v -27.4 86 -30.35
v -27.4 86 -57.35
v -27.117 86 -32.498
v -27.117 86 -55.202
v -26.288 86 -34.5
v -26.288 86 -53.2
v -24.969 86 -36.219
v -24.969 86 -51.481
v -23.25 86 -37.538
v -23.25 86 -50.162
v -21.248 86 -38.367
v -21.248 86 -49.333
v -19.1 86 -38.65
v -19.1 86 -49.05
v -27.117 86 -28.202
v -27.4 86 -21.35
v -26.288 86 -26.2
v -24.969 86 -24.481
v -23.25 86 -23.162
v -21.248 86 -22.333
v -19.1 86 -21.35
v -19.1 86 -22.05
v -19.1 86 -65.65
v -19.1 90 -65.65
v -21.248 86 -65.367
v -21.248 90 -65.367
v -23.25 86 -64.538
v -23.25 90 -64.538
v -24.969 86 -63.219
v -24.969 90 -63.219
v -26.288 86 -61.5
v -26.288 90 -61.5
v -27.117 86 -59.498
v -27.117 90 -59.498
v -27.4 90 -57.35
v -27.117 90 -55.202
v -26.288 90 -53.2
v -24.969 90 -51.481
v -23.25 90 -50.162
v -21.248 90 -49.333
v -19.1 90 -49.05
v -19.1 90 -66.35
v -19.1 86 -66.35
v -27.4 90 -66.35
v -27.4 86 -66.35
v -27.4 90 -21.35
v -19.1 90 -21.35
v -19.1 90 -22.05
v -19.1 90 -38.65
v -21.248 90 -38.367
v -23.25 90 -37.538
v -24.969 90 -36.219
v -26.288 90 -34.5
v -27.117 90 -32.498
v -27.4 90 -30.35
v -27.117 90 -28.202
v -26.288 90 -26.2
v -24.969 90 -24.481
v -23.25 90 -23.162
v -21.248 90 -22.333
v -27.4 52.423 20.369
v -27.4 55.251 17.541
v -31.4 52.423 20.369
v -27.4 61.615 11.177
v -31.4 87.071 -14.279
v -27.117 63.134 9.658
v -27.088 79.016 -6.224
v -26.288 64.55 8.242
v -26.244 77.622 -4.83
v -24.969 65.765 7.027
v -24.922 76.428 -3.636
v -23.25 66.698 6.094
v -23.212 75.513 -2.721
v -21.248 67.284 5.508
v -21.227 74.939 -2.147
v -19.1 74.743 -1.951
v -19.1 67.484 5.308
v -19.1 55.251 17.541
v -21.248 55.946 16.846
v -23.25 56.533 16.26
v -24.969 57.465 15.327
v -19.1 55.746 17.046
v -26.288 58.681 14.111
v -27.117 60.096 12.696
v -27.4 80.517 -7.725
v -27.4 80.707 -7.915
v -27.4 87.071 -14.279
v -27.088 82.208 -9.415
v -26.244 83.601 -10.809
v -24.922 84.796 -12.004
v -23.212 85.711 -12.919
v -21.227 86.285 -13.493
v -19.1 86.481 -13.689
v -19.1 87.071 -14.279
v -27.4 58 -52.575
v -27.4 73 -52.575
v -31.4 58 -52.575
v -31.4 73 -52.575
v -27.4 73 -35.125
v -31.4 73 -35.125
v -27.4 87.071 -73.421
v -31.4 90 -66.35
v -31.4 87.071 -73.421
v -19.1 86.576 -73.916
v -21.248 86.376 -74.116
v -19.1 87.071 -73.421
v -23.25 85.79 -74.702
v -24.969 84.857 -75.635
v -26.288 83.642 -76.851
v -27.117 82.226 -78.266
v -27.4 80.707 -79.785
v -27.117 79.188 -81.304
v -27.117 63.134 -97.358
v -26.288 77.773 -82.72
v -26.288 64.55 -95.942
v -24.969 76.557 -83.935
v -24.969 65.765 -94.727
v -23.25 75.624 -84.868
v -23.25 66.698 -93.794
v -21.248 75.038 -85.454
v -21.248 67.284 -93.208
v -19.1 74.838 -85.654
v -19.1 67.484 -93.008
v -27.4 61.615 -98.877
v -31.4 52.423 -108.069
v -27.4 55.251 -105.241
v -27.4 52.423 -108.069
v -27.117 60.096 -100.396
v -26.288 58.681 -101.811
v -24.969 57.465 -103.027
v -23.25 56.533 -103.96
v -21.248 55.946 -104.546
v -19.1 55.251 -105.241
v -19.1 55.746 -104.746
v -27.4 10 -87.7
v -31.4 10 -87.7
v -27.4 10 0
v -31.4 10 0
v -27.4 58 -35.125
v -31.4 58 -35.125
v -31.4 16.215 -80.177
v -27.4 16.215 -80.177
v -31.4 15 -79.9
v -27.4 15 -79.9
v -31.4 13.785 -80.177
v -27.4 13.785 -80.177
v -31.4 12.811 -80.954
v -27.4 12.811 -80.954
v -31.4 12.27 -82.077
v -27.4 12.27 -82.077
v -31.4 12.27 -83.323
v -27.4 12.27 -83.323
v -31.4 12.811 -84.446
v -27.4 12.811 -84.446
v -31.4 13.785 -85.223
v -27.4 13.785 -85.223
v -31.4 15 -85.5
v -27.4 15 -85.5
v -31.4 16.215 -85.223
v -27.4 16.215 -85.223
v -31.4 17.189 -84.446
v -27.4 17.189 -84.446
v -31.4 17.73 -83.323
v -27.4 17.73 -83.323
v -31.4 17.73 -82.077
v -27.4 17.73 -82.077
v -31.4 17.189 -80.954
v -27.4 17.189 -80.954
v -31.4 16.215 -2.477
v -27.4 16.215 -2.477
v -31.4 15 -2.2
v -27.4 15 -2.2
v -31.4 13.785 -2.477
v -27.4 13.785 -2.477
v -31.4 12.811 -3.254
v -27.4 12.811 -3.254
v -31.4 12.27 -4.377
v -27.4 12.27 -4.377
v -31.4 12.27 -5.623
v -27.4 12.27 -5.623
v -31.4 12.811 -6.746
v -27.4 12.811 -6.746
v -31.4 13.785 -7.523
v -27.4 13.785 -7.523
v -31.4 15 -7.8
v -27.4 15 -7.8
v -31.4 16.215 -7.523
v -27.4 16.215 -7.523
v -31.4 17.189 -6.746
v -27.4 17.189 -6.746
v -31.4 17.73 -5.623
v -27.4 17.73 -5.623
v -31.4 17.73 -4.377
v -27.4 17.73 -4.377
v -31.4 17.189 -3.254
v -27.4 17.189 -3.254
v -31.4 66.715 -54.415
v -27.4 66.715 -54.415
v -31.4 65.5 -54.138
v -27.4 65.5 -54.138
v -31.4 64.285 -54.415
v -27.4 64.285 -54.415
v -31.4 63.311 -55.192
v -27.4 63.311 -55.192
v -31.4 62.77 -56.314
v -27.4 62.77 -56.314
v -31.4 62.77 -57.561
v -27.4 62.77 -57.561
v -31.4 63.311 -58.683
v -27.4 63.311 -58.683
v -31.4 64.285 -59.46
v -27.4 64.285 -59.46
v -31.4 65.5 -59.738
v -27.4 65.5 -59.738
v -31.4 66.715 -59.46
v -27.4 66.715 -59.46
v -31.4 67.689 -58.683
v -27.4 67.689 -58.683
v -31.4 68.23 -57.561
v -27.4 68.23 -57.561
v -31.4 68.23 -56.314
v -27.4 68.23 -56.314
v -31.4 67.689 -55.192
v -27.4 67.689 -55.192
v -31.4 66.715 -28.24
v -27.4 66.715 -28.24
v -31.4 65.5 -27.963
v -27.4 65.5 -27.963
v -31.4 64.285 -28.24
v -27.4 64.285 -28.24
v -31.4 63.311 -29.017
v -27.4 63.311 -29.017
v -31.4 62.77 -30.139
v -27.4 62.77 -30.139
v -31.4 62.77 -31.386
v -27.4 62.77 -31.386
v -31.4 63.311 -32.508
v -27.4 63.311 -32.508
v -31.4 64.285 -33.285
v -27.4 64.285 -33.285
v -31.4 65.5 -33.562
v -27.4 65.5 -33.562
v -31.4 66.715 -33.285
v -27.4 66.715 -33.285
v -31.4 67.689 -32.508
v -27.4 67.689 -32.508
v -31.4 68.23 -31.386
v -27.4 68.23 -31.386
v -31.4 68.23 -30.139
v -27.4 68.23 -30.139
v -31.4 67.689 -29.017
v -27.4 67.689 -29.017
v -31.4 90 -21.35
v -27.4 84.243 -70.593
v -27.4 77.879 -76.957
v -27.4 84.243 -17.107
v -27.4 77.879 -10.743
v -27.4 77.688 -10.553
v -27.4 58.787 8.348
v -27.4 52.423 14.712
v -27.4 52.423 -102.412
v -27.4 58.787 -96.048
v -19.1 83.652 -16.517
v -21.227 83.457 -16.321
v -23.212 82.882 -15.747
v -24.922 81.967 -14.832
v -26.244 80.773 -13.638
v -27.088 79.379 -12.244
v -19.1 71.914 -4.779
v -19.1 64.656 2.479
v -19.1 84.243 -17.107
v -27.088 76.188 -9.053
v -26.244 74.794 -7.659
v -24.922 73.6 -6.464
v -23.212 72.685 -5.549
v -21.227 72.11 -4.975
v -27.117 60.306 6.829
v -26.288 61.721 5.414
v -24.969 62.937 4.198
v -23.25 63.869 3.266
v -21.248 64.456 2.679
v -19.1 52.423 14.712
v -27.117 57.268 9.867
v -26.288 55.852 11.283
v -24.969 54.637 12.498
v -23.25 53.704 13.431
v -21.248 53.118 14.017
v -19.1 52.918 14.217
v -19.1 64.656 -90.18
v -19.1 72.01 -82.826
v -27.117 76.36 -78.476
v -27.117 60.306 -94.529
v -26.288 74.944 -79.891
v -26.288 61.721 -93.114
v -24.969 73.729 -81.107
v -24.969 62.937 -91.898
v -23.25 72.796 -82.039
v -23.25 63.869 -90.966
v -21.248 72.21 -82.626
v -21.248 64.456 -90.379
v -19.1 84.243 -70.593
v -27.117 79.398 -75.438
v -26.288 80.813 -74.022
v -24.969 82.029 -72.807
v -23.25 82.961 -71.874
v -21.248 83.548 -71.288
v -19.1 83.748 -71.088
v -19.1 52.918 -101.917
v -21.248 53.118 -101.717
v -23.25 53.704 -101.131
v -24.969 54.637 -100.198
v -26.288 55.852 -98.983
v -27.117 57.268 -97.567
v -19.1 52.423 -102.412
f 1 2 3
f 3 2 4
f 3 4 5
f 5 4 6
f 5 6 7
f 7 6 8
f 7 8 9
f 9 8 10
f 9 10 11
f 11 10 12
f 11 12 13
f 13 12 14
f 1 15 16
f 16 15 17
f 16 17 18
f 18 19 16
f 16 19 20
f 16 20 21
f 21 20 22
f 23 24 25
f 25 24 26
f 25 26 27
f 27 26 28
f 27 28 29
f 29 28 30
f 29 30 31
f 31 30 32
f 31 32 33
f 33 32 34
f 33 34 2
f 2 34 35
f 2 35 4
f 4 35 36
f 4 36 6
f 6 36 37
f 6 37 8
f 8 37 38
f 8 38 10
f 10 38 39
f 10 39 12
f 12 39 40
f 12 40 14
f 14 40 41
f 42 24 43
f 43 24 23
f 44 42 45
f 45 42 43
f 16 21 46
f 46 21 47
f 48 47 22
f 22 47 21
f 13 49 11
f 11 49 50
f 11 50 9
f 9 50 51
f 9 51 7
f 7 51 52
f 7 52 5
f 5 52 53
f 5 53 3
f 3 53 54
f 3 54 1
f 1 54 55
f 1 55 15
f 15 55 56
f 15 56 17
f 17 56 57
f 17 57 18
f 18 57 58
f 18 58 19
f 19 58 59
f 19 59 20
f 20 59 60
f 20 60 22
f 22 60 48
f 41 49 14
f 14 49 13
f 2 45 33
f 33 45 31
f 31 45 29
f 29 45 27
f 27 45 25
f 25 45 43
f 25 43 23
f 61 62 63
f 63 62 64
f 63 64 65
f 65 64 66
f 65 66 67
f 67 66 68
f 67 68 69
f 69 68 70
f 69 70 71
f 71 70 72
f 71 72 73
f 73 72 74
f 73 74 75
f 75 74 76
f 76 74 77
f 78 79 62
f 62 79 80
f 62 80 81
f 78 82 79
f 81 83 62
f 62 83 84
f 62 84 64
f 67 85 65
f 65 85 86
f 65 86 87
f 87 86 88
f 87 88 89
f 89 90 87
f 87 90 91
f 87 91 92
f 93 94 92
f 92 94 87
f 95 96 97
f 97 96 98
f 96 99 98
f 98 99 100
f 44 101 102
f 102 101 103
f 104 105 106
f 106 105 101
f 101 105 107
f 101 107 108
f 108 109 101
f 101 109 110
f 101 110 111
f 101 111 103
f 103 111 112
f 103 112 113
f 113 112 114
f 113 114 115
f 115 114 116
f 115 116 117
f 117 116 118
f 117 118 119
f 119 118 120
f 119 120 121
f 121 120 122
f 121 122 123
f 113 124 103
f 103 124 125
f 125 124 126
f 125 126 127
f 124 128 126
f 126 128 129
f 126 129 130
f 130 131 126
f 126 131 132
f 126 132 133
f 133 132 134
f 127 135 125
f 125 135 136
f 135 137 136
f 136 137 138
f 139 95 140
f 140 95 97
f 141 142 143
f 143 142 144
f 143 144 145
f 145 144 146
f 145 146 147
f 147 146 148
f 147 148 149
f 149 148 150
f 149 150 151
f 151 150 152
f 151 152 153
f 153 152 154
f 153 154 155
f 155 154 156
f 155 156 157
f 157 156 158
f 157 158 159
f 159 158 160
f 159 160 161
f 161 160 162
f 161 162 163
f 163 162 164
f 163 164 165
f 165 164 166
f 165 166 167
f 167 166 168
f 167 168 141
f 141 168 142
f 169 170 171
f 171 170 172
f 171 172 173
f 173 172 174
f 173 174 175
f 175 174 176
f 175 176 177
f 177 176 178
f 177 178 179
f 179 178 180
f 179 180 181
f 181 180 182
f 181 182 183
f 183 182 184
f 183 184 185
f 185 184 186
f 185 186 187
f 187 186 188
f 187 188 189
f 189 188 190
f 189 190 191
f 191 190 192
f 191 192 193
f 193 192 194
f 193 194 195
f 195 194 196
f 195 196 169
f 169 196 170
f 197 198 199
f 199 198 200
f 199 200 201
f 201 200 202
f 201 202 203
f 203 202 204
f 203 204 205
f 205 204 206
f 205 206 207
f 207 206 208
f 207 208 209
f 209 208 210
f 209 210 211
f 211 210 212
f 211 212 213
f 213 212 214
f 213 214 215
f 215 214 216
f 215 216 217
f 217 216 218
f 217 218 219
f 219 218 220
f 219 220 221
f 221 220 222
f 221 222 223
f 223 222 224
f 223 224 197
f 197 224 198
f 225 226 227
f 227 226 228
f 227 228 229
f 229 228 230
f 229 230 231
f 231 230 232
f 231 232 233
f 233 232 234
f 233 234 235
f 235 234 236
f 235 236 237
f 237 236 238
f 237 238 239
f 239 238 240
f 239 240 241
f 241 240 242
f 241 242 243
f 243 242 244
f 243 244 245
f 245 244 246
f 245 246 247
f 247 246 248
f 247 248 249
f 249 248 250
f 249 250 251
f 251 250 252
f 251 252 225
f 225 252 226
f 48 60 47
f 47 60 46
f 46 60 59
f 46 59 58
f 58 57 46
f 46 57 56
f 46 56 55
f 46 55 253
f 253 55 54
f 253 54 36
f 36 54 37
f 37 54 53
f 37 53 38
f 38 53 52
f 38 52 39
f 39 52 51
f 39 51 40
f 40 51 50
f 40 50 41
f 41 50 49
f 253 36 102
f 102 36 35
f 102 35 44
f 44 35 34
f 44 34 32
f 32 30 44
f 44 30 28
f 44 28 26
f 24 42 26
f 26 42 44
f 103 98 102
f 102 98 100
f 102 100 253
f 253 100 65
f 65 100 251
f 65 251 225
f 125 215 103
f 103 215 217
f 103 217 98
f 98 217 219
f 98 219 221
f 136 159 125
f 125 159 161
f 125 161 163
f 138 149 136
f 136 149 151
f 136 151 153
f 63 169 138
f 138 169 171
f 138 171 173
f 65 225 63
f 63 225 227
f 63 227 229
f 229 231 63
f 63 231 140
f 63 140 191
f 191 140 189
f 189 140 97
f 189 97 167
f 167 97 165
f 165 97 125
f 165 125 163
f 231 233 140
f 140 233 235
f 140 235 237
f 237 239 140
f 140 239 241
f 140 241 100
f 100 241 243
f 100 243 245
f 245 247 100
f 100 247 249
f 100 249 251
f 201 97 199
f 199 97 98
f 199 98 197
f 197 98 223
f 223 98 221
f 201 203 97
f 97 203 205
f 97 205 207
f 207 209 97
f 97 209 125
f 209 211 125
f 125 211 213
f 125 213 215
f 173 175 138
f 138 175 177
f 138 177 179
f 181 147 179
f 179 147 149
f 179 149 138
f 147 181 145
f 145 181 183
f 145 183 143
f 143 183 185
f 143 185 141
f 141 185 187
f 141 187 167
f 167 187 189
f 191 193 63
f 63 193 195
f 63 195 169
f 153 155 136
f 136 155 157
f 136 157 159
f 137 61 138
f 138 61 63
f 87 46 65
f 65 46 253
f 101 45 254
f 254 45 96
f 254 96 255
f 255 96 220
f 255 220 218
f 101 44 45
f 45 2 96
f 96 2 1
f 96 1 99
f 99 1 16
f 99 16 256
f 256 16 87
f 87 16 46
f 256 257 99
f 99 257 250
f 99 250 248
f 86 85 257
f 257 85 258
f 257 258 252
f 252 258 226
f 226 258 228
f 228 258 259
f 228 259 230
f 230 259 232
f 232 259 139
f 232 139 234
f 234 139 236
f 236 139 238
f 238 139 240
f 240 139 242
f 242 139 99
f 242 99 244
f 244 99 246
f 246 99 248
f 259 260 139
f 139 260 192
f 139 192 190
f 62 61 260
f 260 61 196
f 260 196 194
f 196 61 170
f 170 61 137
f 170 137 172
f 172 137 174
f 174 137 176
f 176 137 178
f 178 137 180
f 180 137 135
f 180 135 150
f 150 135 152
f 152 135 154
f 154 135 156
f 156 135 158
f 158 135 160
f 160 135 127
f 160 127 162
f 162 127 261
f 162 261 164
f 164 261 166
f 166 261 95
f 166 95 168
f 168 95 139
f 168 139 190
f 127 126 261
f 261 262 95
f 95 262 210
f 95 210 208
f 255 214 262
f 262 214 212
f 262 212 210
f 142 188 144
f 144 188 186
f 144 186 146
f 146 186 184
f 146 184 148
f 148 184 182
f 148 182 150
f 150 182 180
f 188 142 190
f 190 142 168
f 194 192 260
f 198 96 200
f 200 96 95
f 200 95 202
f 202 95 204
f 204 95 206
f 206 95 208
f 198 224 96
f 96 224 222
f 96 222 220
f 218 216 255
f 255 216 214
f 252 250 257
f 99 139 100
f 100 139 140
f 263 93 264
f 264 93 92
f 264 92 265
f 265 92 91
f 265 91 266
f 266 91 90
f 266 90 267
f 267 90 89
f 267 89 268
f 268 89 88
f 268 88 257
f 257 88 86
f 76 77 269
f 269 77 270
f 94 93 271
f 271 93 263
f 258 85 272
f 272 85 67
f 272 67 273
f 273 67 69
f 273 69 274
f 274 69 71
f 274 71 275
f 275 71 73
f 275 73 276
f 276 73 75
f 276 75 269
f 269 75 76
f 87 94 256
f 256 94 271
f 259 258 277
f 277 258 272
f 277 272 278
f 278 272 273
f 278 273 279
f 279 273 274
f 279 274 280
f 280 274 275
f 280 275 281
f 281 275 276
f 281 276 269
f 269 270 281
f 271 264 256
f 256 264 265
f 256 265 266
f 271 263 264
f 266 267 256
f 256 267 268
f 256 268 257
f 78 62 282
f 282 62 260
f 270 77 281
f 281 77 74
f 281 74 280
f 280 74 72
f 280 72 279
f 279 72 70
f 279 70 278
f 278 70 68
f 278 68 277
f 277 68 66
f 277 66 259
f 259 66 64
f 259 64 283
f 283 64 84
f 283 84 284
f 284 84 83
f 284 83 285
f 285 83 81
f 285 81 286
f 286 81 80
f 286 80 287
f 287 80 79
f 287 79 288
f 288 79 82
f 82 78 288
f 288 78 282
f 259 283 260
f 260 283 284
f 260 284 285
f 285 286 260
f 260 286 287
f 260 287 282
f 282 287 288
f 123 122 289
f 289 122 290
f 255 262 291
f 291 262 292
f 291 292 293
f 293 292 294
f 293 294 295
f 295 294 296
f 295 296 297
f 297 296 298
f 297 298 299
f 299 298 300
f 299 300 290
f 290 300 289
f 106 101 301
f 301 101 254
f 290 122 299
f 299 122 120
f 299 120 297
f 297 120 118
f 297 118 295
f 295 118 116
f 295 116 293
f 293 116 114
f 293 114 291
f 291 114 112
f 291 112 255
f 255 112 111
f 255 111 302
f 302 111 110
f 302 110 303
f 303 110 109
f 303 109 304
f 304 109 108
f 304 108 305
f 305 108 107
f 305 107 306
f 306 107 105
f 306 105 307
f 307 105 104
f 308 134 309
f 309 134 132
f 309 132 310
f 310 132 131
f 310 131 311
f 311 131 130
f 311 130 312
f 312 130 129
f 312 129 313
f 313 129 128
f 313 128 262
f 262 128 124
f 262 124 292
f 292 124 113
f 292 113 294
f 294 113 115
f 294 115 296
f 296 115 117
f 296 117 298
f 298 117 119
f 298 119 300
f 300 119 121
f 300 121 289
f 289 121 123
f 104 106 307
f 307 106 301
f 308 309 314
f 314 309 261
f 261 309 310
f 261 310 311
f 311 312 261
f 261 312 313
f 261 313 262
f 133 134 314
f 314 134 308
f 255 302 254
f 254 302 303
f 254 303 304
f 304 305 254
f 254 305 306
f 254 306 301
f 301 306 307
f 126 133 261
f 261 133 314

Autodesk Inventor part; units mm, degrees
ref_plane "YZ Plane" through (0, 0, 0) normal (1, 0, 0) x (0, 1, 0)
ref_plane "XZ Plane" through (0, 0, 0) normal (0, 1, 0) x (-1, 0, 0)
ref_plane "XY Plane" through (0, 0, 0) normal (0, 0, 1) x (1, 0, 0)
sketch "Sketch1" plane through (0, 0, 0) normal (0, 1, 0) x (-1, 0, 0)
  line L0 (0, 0) -> (27.4, 0)
  line L1 (27.4, 0) -> (27.4, -87.7)
  line L2 (27.4, -87.7) -> (0, -87.7)
  line L3 (0, -87.7) -> (0, 0)
  line L4 (13.7, 0) -> (13.7, -13.2)
  line L5 (13.7, -87.7) -> (13.7, -74.5)
  circle A0 centre (13.7, -13.2) radius 2
  circle A1 centre (13.7, -74.5) radius 2
  dimension "d0" = 27.4
  dimension "d1" = 87.7
  dimension "d2" = 13.2
  dimension "d4" = 4
  dimension "d6" = 4
extrude "Extrusion1" add sketch "Sketch1" along normal blind 10
sketch "Sketch2" plane through (0, 0, 0) normal (0, -1, 0) x (1, 0, 0)
  circle A0 centre (-13.7, -13.2) radius 2 projected
  circle A1 centre (-13.7, -13.2) radius 4.5
  circle A2 centre (-13.7, -74.5) radius 2 projected
  circle A3 centre (-13.7, -74.5) radius 4.5
  point P0 (0, 0)
  dimension "d9" = 9
  dimension "d10" = 9
extrude "Extrusion2" cut sketch "Sketch2" against normal blind 3
sketch "Sketch3" plane through (0, 10, 0) normal (0, 1, 0) x (1, 0, 0)
  line L0 (0, 0) -> (0, 87.7) projected
  line L1 (0, 87.7) -> (-27.4, 87.7) projected
  line L2 (0, 0) -> (-27.4, 0)
  line L3 (-27.4, 0) -> (-27.4, 87.7)
  line L4 (-27.4, 87.7) -> (0, 87.7)
  line L5 (0, 87.7) -> (0, 0)
  circle A0 centre (-11.7, 12.5929) radius 0.0901
  circle A1 centre (-13.7, 13.2) radius 2 projected
sketch "Sketch4" plane through (0, 0, 0) normal (0, -1, 0) x (1, 0, 0)
  line L0 (-27.4, -87.7) -> (-27.4, 0) projected
  line L1 (-27.4, -43.85) -> (0, -43.85)
  line L2 (0, 0) -> (0, -87.7) projected
  circle A0 centre (-13.7, -13.2) radius 2 projected
  line L3 (-13.7, -13.2) -> (-13.7, -26.4)
  line L4 (-13.7, -26.4) -> (0, -26.4)
  line L5 (0, -26.4) -> (0, -43.85)
  line L6 (0, -43.85) -> (-13.7, -43.85)
  line L7 (-13.7, -43.85) -> (-13.7, -26.4)
  line L8 (-13.7, -26.4) -> (-27.4, -26.4)
  line L9 (-27.4, -26.4) -> (-27.4, -43.85)
  line L10 (-27.4, -43.85) -> (-13.7, -43.85)
  line L11 (-13.7, -43.85) -> (-13.7, -26.4)
  circle A1 centre (-13.7, -74.5) radius 2 projected
  line L12 (-13.7, -74.5) -> (-13.7, -61.3)
  line L13 (-13.7, -43.85) -> (-13.7, -61.3)
  line L14 (-13.7, -61.3) -> (0, -61.3)
  line L15 (0, -61.3) -> (0, -43.85)
  line L16 (0, -43.85) -> (-13.7, -43.85)
  line L17 (-13.7, -43.85) -> (-13.7, -61.3)
  line L18 (-13.7, -43.85) -> (-27.4, -43.85)
  line L19 (-27.4, -43.85) -> (-27.4, -61.3)
  line L20 (-27.4, -61.3) -> (-13.7, -61.3)
  line L21 (-13.7, -61.3) -> (-13.7, -43.85)
  line L22 (0, -26.4) -> (-27.4, -26.4)
  line L23 (-27.4, -26.4) -> (-27.4, -35.125)
  line L24 (-27.4, -35.125) -> (0, -35.125)
  line L25 (0, -35.125) -> (0, -26.4)
  line L26 (-27.4, -61.3) -> (0, -61.3)
  line L27 (0, -61.3) -> (0, -52.575)
  line L28 (0, -52.575) -> (-27.4, -52.575)
  line L29 (-27.4, -52.575) -> (-27.4, -61.3)
  dimension "d13" = 13.2
  dimension "d14" = 13.2
extrude "Extrusion3" add sketch "Sketch4" along normal blind 60 contours L0 L28 L13 L20 | L13 L28 L2 L14 | L0 L8 L7 L24 | L7 L4 L2 L24
sketch "Sketch5" plane through (0, 0, -87.7) normal (1, 0, 0) x (0, 0, -1)
  line L0 (0, 10) -> (-87.7, 10) projected
  line L1 (-87.7, 10) -> (-87.7, 182)
  line L2 (0, 10) -> (-87.7, 10)
  line L3 (-87.7, 10) -> (-87.7, 182)
  line L4 (-87.7, 182) -> (0, 182)
  line L5 (0, 182) -> (0, 10)
  line L6 (-87.7, 182) -> (0, 182)
  line L7 (0, 182) -> (0, 192)
  line L8 (0, 192) -> (-87.7, 192)
  line L9 (-87.7, 192) -> (-87.7, 182)
  line L10 (-61.3, 0) -> (-61.3, -60) projected
  line L11 (-61.3, -60) -> (-61.3, 192)
  line L12 (-26.4, -60) -> (-35.125, -60) projected
  line L13 (-26.4, -60) -> (-26.4, 192)
  line L14 (-52.575, 0) -> (-52.575, -60) projected
  line L15 (-52.575, -60) -> (-61.3, -60)
  line L16 (-61.3, -60) -> (-61.3, 192)
  line L17 (-61.3, 192) -> (-52.575, 192)
  line L18 (-52.575, 192) -> (-52.575, -60)
  line L19 (-26.4, 182) -> (-35.125, 182)
  line L20 (-35.125, 182) -> (-35.125, 192)
  line L21 (-35.125, 192) -> (-26.4, 192)
  line L22 (-26.4, 192) -> (-26.4, 182)
  line L23 (-61.3, 192) -> (-52.575, 192)
  line L24 (-52.575, 192) -> (-52.575, 252)
  line L25 (-52.575, 252) -> (-61.3, 252)
  line L26 (-61.3, 252) -> (-61.3, 192)
  line L27 (-35.125, 192) -> (-26.4, 192)
  line L28 (-26.4, 192) -> (-26.4, 252)
  line L29 (-26.4, 252) -> (-35.125, 252)
  line L30 (-35.125, 252) -> (-35.125, 192)
  line L31 (-26.4, 10) -> (-35.125, 10)
  line L32 (-35.125, 10) -> (-35.125, 192)
  line L33 (-35.125, 192) -> (-26.4, 192)
  line L34 (-26.4, 192) -> (-26.4, 10)
  point P0 (-87.7, 0)
  point P1 (-52.575, 10)
  point P2 (-52.575, 182)
  point P3 (-35.125, 10)
  point P4 (-26.4, 182)
  point P5 (-61.3, 182)
  point P6 (-61.3, 10)
  dimension "d17" = 172
  dimension "d18" = 10
  dimension "d19" = 8.725
  dimension "d20" = 60
  dimension "d21" = 60
extrude "Extrusion4" add sketch "Sketch5" against normal up to surface (27.4 mm away) contours L0 L32 L4 L13 | L4 L13 L8 L7 | L4 L20 L8 L13 | L0 L11 L4 L18 | L4 L18 L8 L20 | L4 L11 L8 L18 | L4 L9 L8 L11
extrude "Extrusion5" add sketch "Sketch5" against normal up to surface (27.4 mm away) contours L8 L30 L29 L28 | L8 L26 L25 L24
sketch "Sketch6" plane through (0, 0, 0) normal (0, -1, 0) x (1, 0, 0)
  circle A0 centre (-13.7, -13.2) radius 4.5 projected
  circle A1 centre (-13.7, -13.2) radius 2
  circle A2 centre (-13.7, -74.5) radius 2 projected
  circle A3 centre (-13.7, -74.5) radius 2
  point P0 (0, 0)
  dimension "d26" = 4
extrude "Extrusion6" add sketch "Sketch6" against normal through all contours A1 | A2
sketch "Sketch7" plane through (-13.7, 0, -74.5) normal (0, -1, 0) x (1, 0, 0)
  circle A0 centre (0, 61.3) radius 2 projected
  circle A1 centre (0, 61.3) radius 2
  circle A2 centre (0, 0) radius 4.5 projected
  circle A3 centre (0, 0) radius 2
  point P0 (13.7, 74.5)
extrude "Extrusion7" cut sketch "Sketch7" against normal through all contours A0 | A3
sketch "Sketch8" plane through (-27.4, 192, 0) normal (0, 1, 0) x (1, 0, 0)
  circle A0 centre (13.7, 13.2) radius 2 projected
  circle A1 centre (13.7, 13.2) radius 4.5
  circle A2 centre (13.7, 74.5) radius 4.5 projected
  circle A3 centre (13.7, 74.5) radius 4.5
  point P0 (27.4, 0)
  dimension "d31" = 9
  dimension "d32" = 9
extrude "Extrusion8" cut sketch "Sketch8" against normal blind 3
sketch "Sketch9" plane through (0, 0, 0) normal (1, 0, 0) x (0, 0, -1)
  line L0 (26.4, 182) -> (26.4, 10) projected
  line L1 (26.4, 10) -> (61.3, 10)
  line L2 (61.3, 10) -> (61.3, 182)
  line L3 (61.3, 182) -> (26.4, 182)
  line L4 (26.4, 182) -> (26.4, 10)
  point P0 (0, 0)
extrude "Extrusion9" cut sketch "Sketch9" against normal through all
sketch "Sketch10" plane through (0, 0, 0) normal (1, 0, 0) x (0, 0, -1)
  line L0 (-41.6694, 140.0326) -> (109.1096, 140.0326)
  line L1 (109.1096, 140.0326) -> (109.1096, 292.3119)
  line L2 (109.1096, 292.3119) -> (-41.6694, 292.3119)
  line L3 (-41.6694, 292.3119) -> (-41.6694, 140.0326)
  point P0 (0, 0)
extrude "Extrusion10" cut sketch "Sketch10" against normal blind 30
sketch "Sketch11" plane through (0, 10, 0) normal (0, 1, 0) x (1, 0, 0)
  line L0 (0, 61.3) -> (0, 87.7) projected
  line L1 (-27.4, 0) -> (0, 0) projected
  line L2 (0, 87.7) -> (-27.4, 87.7)
  line L3 (-27.4, 87.7) -> (-27.4, 0)
  line L4 (-27.4, 0) -> (0, 0)
  line L5 (0, 0) -> (0, 87.7)
extrude "Extrusion11" add sketch "Sketch11" against normal up to surface (10 mm away)
sketch "Sketch12" plane through (0, 10, 0) normal (0, 1, 0) x (1, 0, 0)
  line L0 (0, 61.3) -> (0, 87.7) projected
  line L1 (-27.4, 0) -> (0, 0) projected
  line L2 (0, 87.7) -> (-27.4, 87.7)
  line L3 (-27.4, 87.7) -> (-27.4, 0)
  line L4 (-27.4, 0) -> (0, 0)
  line L5 (0, 0) -> (0, 87.7)
  line L6 (-27.4, 0) -> (-11.2, 0)
  line L7 (0, 87.7) -> (-27.4, 87.7) projected
  line L8 (-27.4, 87.7) -> (-11.2, 87.7)
  line L9 (-11.2, 87.7) -> (-11.2, 74.5)
  line L10 (-11.2, 0) -> (-11.2, 13.2)
  circle A0 centre (-11.2, 74.5) radius 2
  circle A1 centre (-11.2, 13.2) radius 2
  dimension "d41" = 16.2
  dimension "d42" = 16.2
  dimension "d43" = 13.2
  dimension "d44" = 13.2
  dimension "d45" = 4
  dimension "d46" = 4
extrude "Extrusion12" cut sketch "Sketch12" against normal through all contours A0 | A1
sketch "Sketch13" plane through (0, 0, -87.7) normal (1, 0, 0) x (0, 0, -1)
  line L0 (-87.7, 10) -> (0, 10) projected
  line L1 (0, 10) -> (-87.7, 10)
  line L2 (-26.4, 0) -> (-26.4, -60) projected
  line L3 (-35.125, 0) -> (-35.125, -60) projected
  line L4 (-26.4, -60) -> (-35.125, -60)
  line L5 (-35.125, -60) -> (-35.125, 0)
  line L6 (-35.125, 0) -> (-26.4, 0)
  line L7 (-26.4, 0) -> (-26.4, -60)
  line L8 (-52.575, 0) -> (-52.575, -60) projected
  line L9 (-61.3, 0) -> (-61.3, -60) projected
  line L10 (-52.575, -60) -> (-61.3, -60)
  line L11 (-61.3, -60) -> (-61.3, 0)
  line L12 (-61.3, 0) -> (-52.575, 0)
  line L13 (-52.575, 0) -> (-52.575, -60)
  line L14 (0, 0) -> (-87.7, 0)
  line L15 (-87.7, 0) -> (-87.7, 10)
  line L16 (-87.7, 10) -> (0, 10)
  line L17 (0, 10) -> (0, 0)
  line L18 (-26.4, 20) -> (-26.4, 80)
  line L19 (-35.125, 20) -> (-35.125, 80)
  line L20 (-26.4, 80) -> (-35.125, 80)
  line L21 (-61.3, 20) -> (-61.3, 80)
  line L22 (-52.575, 80) -> (-61.3, 80)
  line L23 (-52.575, 20) -> (-52.575, 80)
  line L24 (0, 20) -> (-87.7, 20)
  line L25 (-87.7, 20) -> (-87.7, 10)
  line L26 (0, 10) -> (0, 20)
extrude "Extrusion13" add sketch "Sketch13" against normal up to surface (27.4 mm away) contours L25 L24 L26 L0 | L21 L22 L23 L24 | L24 L19 L20 L18
sketch "Sketch14" plane through (-27.4, 0, -26.4) normal (-1, 0, 0) x (0, 0, 1)
  line L0 (26.4, 0) -> (26.4, 20) projected
  line L1 (26.4, 10) -> (-64.4539, 10)
  line L2 (-64.4539, 10) -> (-64.4539, -69.7314)
  line L3 (-64.4539, -69.7314) -> (26.4, -69.7314)
  line L4 (26.4, -69.7314) -> (26.4, 10)
extrude "Extrusion14" cut sketch "Sketch14" against normal blind 30
sketch "Sketch15" plane through (0, 20, -61.3) normal (0, 1, 0) x (1, 0, 0)
  line L0 (0, 26.4) -> (0, 0) projected
  line L1 (0, 26.4) -> (0, 13.2)
  line L2 (0, 13.2) -> (-16.2, 13.2)
  line L3 (0, -61.3) -> (0, -48.1)
  line L4 (0, -34.9) -> (0, -61.3) projected
  line L5 (0, -48.1) -> (-16.2, -48.1)
  circle A0 centre (-16.2, 13.2) radius 2
  circle A1 centre (-16.2, -48.1) radius 2
  dimension "d53" = 13.2
  dimension "d54" = 16.2
  dimension "d55" = 13.2
  dimension "d56" = 16.2
  dimension "d57" = 4
  dimension "d58" = 4
extrude "Extrusion15" cut sketch "Sketch15" against normal blind 30
sketch "Sketch17" plane through (0, 20, -61.3) normal (1, 0, 0) x (0, 0, -1)
  line L0 (-61.3, -10) -> (-61.3, 0) projected
  line L1 (-61.3, -10) -> (-61.3, 179.5615)
  line L2 (-26.175, 60) -> (-34.9, 60) projected
  line L3 (0, 60) -> (-8.725, 60) projected
  line L4 (-26.175, 60) -> (-8.725, 60)
  line L5 (-17.45, 60) -> (-39.95, 60)
  line L6 (-17.45, 60) -> (5.05, 60)
  line L7 (0, 0) -> (0, 60) projected
  line L8 (-34.9, 60) -> (-34.9, 0) projected
  line L9 (0, 60) -> (-34.9, 60)
  line L10 (-34.9, 60) -> (-34.9, 53)
  line L11 (-34.9, 53) -> (0, 53)
  line L12 (0, 53) -> (0, 60)
  line L13 (5.05, 60) -> (-12.9933, 60)
  line L14 (-12.9933, 60) -> (-12.9933, 53)
  line L15 (-12.9933, 53) -> (5.05, 53)
  line L16 (5.05, 53) -> (5.05, 60)
  line L17 (-39.95, 60) -> (-34.9, 60)
  line L18 (-34.9, 60) -> (-34.9, 53)
  line L19 (-34.9, 53) -> (-39.95, 53)
  line L20 (-39.95, 53) -> (-39.95, 60)
  point P0 (-61.3, -20)
  dimension "d61" = 22.5
  dimension "d62" = 22.5
  dimension "d63" = 7
extrude "Extrusion16" add sketch "Sketch17" against normal up to surface (27.4 mm away) contours L4 L14 L11 L8 L2 | L4 L3 L7 L11 L14
extrude "Extrusion17" add sketch "Sketch17" against normal up to surface (27.4 mm away) contours L8 L19 L20 L5 | L7 L6 L16 L15
sketch "Sketch18" plane through (-27.4, 10, -87.7) normal (-1, 0, 0) x (0, 0, 1)
  line L0 (21.35, 70) -> (66.35, 70) projected
  line L1 (66.35, 70) -> (98.1698, 38.1802)
  line L2 (66.35, 70) -> (111.35, 70) construction
  line L3 (21.35, 70) -> (-10.4698, 38.1802)
  line L4 (21.35, 70) -> (66.35, 70) construction
  line L5 (21.35, 70) -> (26.2997, 65.0503)
  line L6 (26.2997, 65.0503) -> (-5.5201, 33.2304)
  line L7 (-10.4698, 38.1802) -> (-5.5201, 33.2304)
  line L8 (43.85, 70) -> (43.85, 34.6614)
  line L9 (66.35, 70) -> (98.1698, 38.1802)
  line L10 (66.35, 70) -> (61.4003, 65.0503)
  line L11 (61.4003, 65.0503) -> (93.2201, 33.2304)
  line L12 (98.1698, 38.1802) -> (93.2201, 33.2304)
  line L13 (21.35, 63) -> (21.35, 70) projected
  line L14 (21.35, 70) -> (21.35, 63)
  line L15 (21.35, 63) -> (24.2495, 63)
  line L16 (66.35, 70) -> (66.35, 63) projected
  line L17 (66.35, 70) -> (66.35, 63)
  line L18 (66.35, 63) -> (63.4505, 63)
  point P0 (87.7, -10)
  dimension "d68" = 45
  dimension "d69" = 45
  dimension "d70" = 45
  dimension "d71" = 135
  dimension "d72" = 7
  dimension "d73" = 45
extrude "Extrusion18" add sketch "Sketch18" against normal up to surface (27.4 mm away) contours L1 L12 L11 L18 L16 | L13 L15 L6 L7 L3
sketch "Sketch20" plane through (0, 10, -87.7) normal (0, -1, 0) x (1, 0, 0)
  circle A0 centre (-16.2, 13.2) radius 2 projected
  circle A1 centre (-16.2, 13.2) radius 2
  circle A2 centre (-16.2, 74.5) radius 2 projected
  circle A3 centre (-16.2, 74.5) radius 2
  point P0 (0, 87.7)
extrude "Extrusion19" add sketch "Sketch20" against normal through all
extrude "Extrusion20" cut sketch "Sketch20" against normal through all
sketch "Sketch21" plane through (0, 20, 0) normal (0, 1, 0) x (1, 0, 0)
  circle A0 centre (-16.2, 13.2) radius 2 projected
  circle A1 centre (-16.2, 13.2) radius 5
  circle A2 centre (-16.2, 74.5) radius 2 projected
  circle A3 centre (-16.2, 74.5) radius 5
  point P0 (0, 0)
  dimension "d80" = 10
  dimension "d81" = 10
extrude "Extrusion21" add sketch "Sketch21" along normal blind 80 contours A0 | A1 | A3
sketch "Sketch22" plane through (-16.2, 100, -13.2) normal (0, 1, 0) x (1, 0, 0)
  line L0 (-14.7944, -28.3502) -> (23.9654, -28.3502)
  line L1 (23.9654, -28.3502) -> (23.9654, 88.2133)
  line L2 (23.9654, 88.2133) -> (-14.7944, 88.2133)
  line L3 (-14.7944, 88.2133) -> (-14.7944, -28.3502)
  circle A0 centre (0, 0) radius 5 projected
  circle A1 centre (0, 0) radius 5
  circle A2 centre (0, 61.3) radius 2 projected
  circle A3 centre (0, 61.3) radius 5
  point P0 (16.2, -13.2)
extrude "Extrusion22" cut sketch "Sketch22" against normal blind 80 contours A0 | A3
sketch "Sketch24" plane through (-27.4, 80, -21.35) normal (0, 0.7071068, 0.7071068) x (1, 0, 0)
  line L0 (0, -45) -> (27.4, -45) projected
  line L1 (27.4, 0) -> (0, 0) projected
  line L2 (27.4, -45) -> (0, -45)
  line L3 (0, -45) -> (0, 0)
  line L4 (0, 0) -> (27.4, 0)
  line L5 (27.4, 0) -> (27.4, -45)
  line L6 (0, 0) -> (0, -45)
  line L7 (0, -2.5809) -> (0, -64.5942) projected
  line L8 (0, -22.5) -> (0, -27.5)
  line L9 (0, -27.5) -> (0, -17.5)
  line L10 (0, -27.5) -> (3, -27.5)
  line L11 (3, -27.5) -> (3, -17.5)
  line L12 (3, -17.5) -> (0, -17.5)
  line L13 (0, -17.5) -> (0, -27.5)
  line L14 (0, -17.5) -> (3, -17.5)
  line L15 (3, -17.5) -> (3, -27.5)
  line L16 (3, -27.5) -> (0, -27.5)
  line L17 (0, -27.5) -> (0, -17.5)
  point P0 (27.4, -71.6653)
  dimension "d86" = 5
  dimension "d87" = 10
  dimension "d88" = 3
extrude "Extrusion23" cut sketch "Sketch24" against normal up to surface (7 mm away) contours L3 L12 L11 L10
sketch "Sketch25" plane through (0, 80, -21.35) normal (0, 1, 0) x (1, 0, 0)
  line L0 (-27.4, 13.775) -> (-27.4, 31.225) projected
  line L1 (-27.4, 22.5) -> (-24.4, 22.5)
  line L2 (-24.4, 22.5) -> (-24.4, 17.5)
  line L3 (-24.4, 17.5) -> (-27.4, 17.5)
  line L4 (-27.4, 17.5) -> (-27.4, 22.5)
  line L5 (-27.4, 17.5) -> (-24.4, 17.5)
  line L6 (-24.4, 17.5) -> (-24.4, 27.5)
  line L7 (-24.4, 27.5) -> (-27.4, 27.5)
  line L8 (-27.4, 27.5) -> (-27.4, 17.5)
  point P0 (0, -21.35)
  point P1 (-24.4, 22.5)
  point P2 (-27.4, 27.5)
  dimension "d91" = 3
  dimension "d92" = 5
  dimension "d93" = 10
extrude "Extrusion24" cut sketch "Sketch25" against normal blind 10
sketch "Sketch26" plane through (0, 48.1802, -98.1698) normal (0, 0.7071068, -0.7071068) x (-1, 0, 0)
  line L0 (0, 45) -> (27.4, 45) projected
  line L1 (27.4, 45) -> (27.4, 0)
  line L2 (27.4, -19.5942) -> (27.4, 42.4191) projected
  line L3 (0, 42.4191) -> (0, -19.5942) projected
  line L4 (27.4, 45) -> (0, 45)
  line L5 (0, 45) -> (0, 0)
  line L6 (0, 0) -> (27.4, 0)
  line L7 (27.4, 0) -> (27.4, 45)
  line L8 (27.4, 45) -> (27.4, 27.5)
  line L9 (27.4, 24.653) -> (27.4, 62.1297) projected
  line L10 (27.4, 27.5) -> (24.4, 27.5)
  line L11 (24.4, 27.5) -> (24.4, 17.5)
  line L12 (24.4, 17.5) -> (27.4, 17.5)
  line L13 (27.4, 17.5) -> (27.4, 27.5)
  point P0 (0, 35.348)
  dimension "d96" = 45
  dimension "d97" = 17.5
  dimension "d98" = 3
  dimension "d99" = 10
extrude "Extrusion25" cut sketch "Sketch26" against normal blind 10 contours L1 L12 L11 L10
sketch "Sketch27" plane through (-27.4, 48.1802, 10.4698) normal (0, 0.7071068, 0.7071068) x (1, 0, 0)
  line L0 (0, 0) -> (27.4, 0) projected
  line L1 (27.4, 45) -> (0, 45) projected
  line L2 (27.4, 0) -> (20.4, 0)
  line L3 (20.4, 0) -> (20.4, 45)
  line L4 (20.4, 45) -> (27.4, 45)
  line L5 (27.4, 45) -> (27.4, 0)
  point P0 (27.4, -26.6653)
  dimension "d102" = 7
extrude "Extrusion26" add sketch "Sketch27" along normal blind 10
sketch "Sketch28" plane through (-27.4, 80, -66.35) normal (0, 1, 0) x (1, 0, 0)
  line L0 (27.4, -45) -> (20.4, -45) projected
  line L1 (27.4, 0) -> (27.4, -45) projected
  line L2 (20.4, -45) -> (27.4, -45)
  line L3 (27.4, -45) -> (27.4, 0)
  line L4 (27.4, 0) -> (20.4, 0)
  line L5 (20.4, 0) -> (20.4, -45)
  point P0 (27.4, -66.35)
extrude "Extrusion27" add sketch "Sketch28" along normal blind 10
sketch "Sketch29" plane through (0, 48.1802, -98.1698) normal (0, 0.7071068, -0.7071068) x (-1, 0, 0)
  line L0 (0, 45) -> (7, 45) projected
  line L1 (7, 45) -> (0, 45)
  line L2 (0, 45) -> (0, 0)
  line L3 (0, 0) -> (7, 0)
  line L4 (7, 0) -> (7, 45)
  point P0 (0, 35.348)
extrude "Extrusion28" add sketch "Sketch29" along normal blind 10
sketch "Sketch30" plane through (-7, 55.2513, 17.5409) normal (-1, 0, 0) x (0, 0.7071068, 0.7071068)
  line L0 (-10, 45) -> (0, 45) projected
  line L1 (-5, 45) -> (-6.4645, 48.5355)
  line L2 (-10, 45) -> (-2.9289, 52.0711) projected
  line L3 (0, 45) -> (-2.9289, 52.0711)
  line L4 (-2.9289, 52.0711) -> (-34.7487, 83.8909) projected
  line L5 (-34.7487, 83.8909) -> (-41.8198, 76.8198)
  line L6 (-41.8198, 76.8198) -> (-41.8198, 86.8198)
  line L7 (-41.8198, 86.8198) -> (-34.7487, 83.8909)
  point P0 (-51.4718, -26.6653)
extrude "Extrusion29" add sketch "Sketch30" against normal up to surface (7 mm away)
sketch "Sketch31" plane through (-7, 80, -66.35) normal (-1, 0, 0) x (0, 0, 1)
  line L0 (52.0711, 7.0711) -> (83.8909, -24.7487) projected
  line L1 (57.3744, -12.3744) -> (45, 0) projected
  line L2 (52.0711, 7.0711) -> (45, 0)
  line L3 (52.0711, 7.0711) -> (45, 10) projected
  line L4 (45, 0) -> (45, 10)
  line L5 (45, 10) -> (52.0711, 7.0711)
  line L6 (0, 10) -> (-7.0711, 7.0711) projected
  line L7 (-7.0711, 7.0711) -> (0, 10)
  line L8 (0, 0) -> (-12.3744, -12.3744) projected
  line L9 (0, 10) -> (0, 0)
  line L10 (0, 0) -> (-7.0711, 7.0711)
  point P0 (66.35, -80)
extrude "Extrusion30" add sketch "Sketch31" along normal up to surface (20.4 mm away)
sketch "Sketch32" plane through (-27.4, 43.2304, 5.5201) normal (0, -0.7071068, 0.7071068) x (1, 0, 0)
  line L0 (27.4, 0) -> (0, 0) projected
  line L1 (27.4, 17) -> (20.4, 17) projected
  line L2 (0, 0) -> (27.4, 0)
  line L3 (27.4, 0) -> (27.4, 17)
  line L4 (27.4, 17) -> (0, 17)
  line L5 (0, 17) -> (0, 0)
  point P0 (27.4, -34.4718)
  point P1 (20.4, 17)
extrude "Extrusion31" add sketch "Sketch32" along normal blind 4
sketch "Sketch33" plane through (0, 43.2304, -93.2201) normal (0, -0.7071068, -0.7071068) x (-1, 0, 0)
  line L0 (0, 14.0711) -> (0, 17) projected
  line L1 (27.4, 7) -> (27.4, -5.3744) projected
  line L2 (0, 17) -> (27.4, 17)
  line L3 (27.4, 17) -> (27.4, 0)
  line L4 (27.4, 0) -> (0, 0)
  line L5 (0, 0) -> (0, 17)
  point P0 (0, -96.4851)
  point P1 (0, 14.0711)
  dimension "d115" = 17
extrude "Extrusion32" add sketch "Sketch33" along normal blind 4
sketch "Sketch34" plane through (-27.4, 10, -87.7) normal (-1, 0, 0) x (0, 0, 1)
  line L0 (87.7, 0) -> (87.7, 10) projected
  line L1 (73.4211, 77.0711) -> (108.0693, 42.4228) projected
  line L2 (87.7, 0) -> (108.0693, 42.4228)
  line L3 (0, 0) -> (0, 10) projected
  line L4 (-17.5409, 45.2513) -> (-20.3693, 42.4228) projected
  line L5 (0, 0) -> (-20.3693, 42.4228)
  line L6 (108.0693, 42.4228) -> (73.4211, 77.0711)
  line L7 (73.4211, 77.0711) -> (66.35, 80) projected
  line L8 (73.4211, 77.0711) -> (66.35, 80)
  line L9 (66.35, 80) -> (21.35, 80) projected
  line L10 (66.35, 80) -> (21.35, 80)
  line L11 (21.35, 80) -> (14.2789, 77.0711) projected
  line L12 (21.35, 80) -> (14.2789, 77.0711)
  line L13 (14.2789, 77.0711) -> (-20.3693, 42.4228)
  line L14 (108.0693, 42.4228) -> (96.0485, 30.402)
  line L15 (61.3, 10) -> (87.7, 10) projected
  line L16 (108.0693, 42.4228) -> (153.9221, 42.4228) construction
  line L17 (63.4505, 63) -> (96.0485, 30.402) projected
  line L18 (65.0399, 10) -> (75.6465, 10)
  line L19 (-20.3693, 42.4228) -> (12.0535, 10)
  line L20 (-20.3693, 42.4228) -> (25.4835, 42.4228) construction
  line L21 (-8.3485, 30.402) -> (-3.0452, 35.7053)
  line L22 (-3.0452, 35.7053) -> (22.6601, 10)
  line L23 (22.6601, 10) -> (12.0535, 10)
  line L24 (96.0485, 30.402) -> (87.7, 10)
  line L25 (87.7, 10) -> (80.2, 10)
  line L26 (80.2, 10) -> (93.788, 43.2062)
  line L27 (96.0485, 30.402) -> (90.7263, 35.7242)
  line L28 (35.125, 10) -> (52.575, 10) projected
  line L29 (43.85, 10) -> (43.85, 63)
  line L30 (48.85, 63) -> (38.85, 63) projected
  line L31 (-8.3485, 30.402) -> (0, 10)
  line L32 (0, 10) -> (7.5, 10)
  line L33 (7.5, 10) -> (-6.088, 43.2062)
  line L34 (-8.3485, 30.402) -> (-3.0263, 35.7242)
  line L35 (94.5362, 31.9143) -> (85.1191, 10)
  line L36 (96.0485, 30.402) -> (94.5362, 31.9143)
  line L37 (80.8457, 45.6048) -> (96.0485, 30.402) projected
  line L38 (26.4, 10) -> (0, 10)
  line L39 (-8.3485, 30.402) -> (0, 10)
  line L40 (-8.3485, 30.402) -> (-3.0263, 35.7242)
  line L41 (-6.8362, 31.9143) -> (2.5809, 10)
  point P0 (87.7, -10)
  point P1 (2.5809, 10)
  point P2 (-4.5571, 26.6106)
  point P3 (94.5362, 31.9143)
  point P4 (85.1191, 10)
  dimension "d121" = 45
  dimension "d122" = 7.5
  dimension "d123" = 7.5
  dimension "d124" = 1
extrude "Extrusion33" add sketch "Sketch34" against normal blind 10 contours L0 L24 L14 L2 | L15 L35 L17 L24 | L5 L19 L31 L3 | L31 L19 L41 L32
sketch "Sketch35" plane through (-27.4, 20, -52.575) normal (-1, 0, 0) x (0, 0, 1)
  line L0 (52.575, 0) -> (52.575, -10) projected
  line L1 (26.175, 0) -> (49.9941, 0) projected
  line L2 (52.575, -10) -> (42.575, -10)
  line L3 (42.575, -10) -> (42.575, 0)
  line L4 (42.575, 0) -> (52.575, 0)
  line L5 (52.575, 0) -> (52.575, -10)
  line L6 (72.9443, 32.4228) -> (52.575, -10) projected
  line L7 (52.575, -10) -> (42.575, 0)
  circle A0 centre (47.575, -5) radius 2.8
  line L8 (52.575, -10) -> (-35.125, -10) projected
  line L9 (8.725, -10) -> (8.725, 0)
  line L10 (0, 0) -> (17.45, 0) projected
  circle A1 centre (-30.125, -5) radius 2.8
  line L11 (17.45, 0) -> (17.45, 53) projected
  line L12 (26.175, 53) -> (26.175, 0) projected
  line L13 (17.45, 53) -> (26.175, 53)
  line L14 (26.175, 53) -> (26.175, 38)
  line L15 (26.175, 38) -> (17.45, 38)
  line L16 (17.45, 38) -> (17.45, 53)
  line L17 (-8.725, 53) -> (-10.8755, 53) projected
  line L18 (26.175, 38) -> (-8.725, 38)
  line L19 (-8.725, 38) -> (-8.725, 53)
  line L20 (-8.725, 53) -> (26.175, 53)
  line L21 (26.175, 53) -> (26.175, 38)
  line L22 (-8.725, 38) -> (0, 38)
  line L23 (0, 38) -> (0, 53)
  line L24 (0, 53) -> (-8.725, 53)
  line L25 (-8.725, 53) -> (-8.725, 38)
  line L26 (26.175, 38) -> (17.45, 53)
  line L27 (3.725, 53) -> (0, 53) projected
  line L28 (0, 53) -> (-8.725, 38)
  circle A2 centre (21.8125, 45.5) radius 2.8
  circle A3 centre (-4.3625, 45.5) radius 2.8
  line L29 (31.225, 60) -> (31.225, 70) projected
  line L30 (38.2961, 67.0711) -> (31.225, 70) projected
  line L31 (31.225, 70) -> (38.2961, 67.0711)
  line L32 (38.2961, 67.0711) -> (72.9443, 32.4228)
  line L33 (72.9443, 32.4228) -> (52.575, -10)
  line L34 (52.575, -10) -> (-35.125, -10)
  line L35 (-35.125, -10) -> (-55.4943, 32.4228) projected
  line L36 (-35.125, -10) -> (-55.4943, 32.4228)
  line L37 (-55.4943, 32.4228) -> (-20.8461, 67.0711)
  line L38 (-20.8461, 67.0711) -> (-13.775, 70)
  line L39 (-13.775, 70) -> (31.225, 70)
  point P0 (52.575, -20)
  point P1 (0, 38)
  dimension "d127" = 10
  dimension "d128" = 5.6
  dimension "d129" = 15
  dimension "d130" = 5.6
  dimension "d131" = 5.6
extrude "Extrusion34" add sketch "Sketch35" along normal blind 4 contours L4 L1 L12 L13 L20 L19 L18 L11 L10 L9 L8 L35 L37 L38 L39 L30 L32 L6 L0 | L0 L7 A0 L1 L4 | L2 L3 L7 A0 | L8 L9 L10 L11 L15 L12 L1 L3 | L26 A2 L13 L12 | L15 L11 L26 A2 | L18 L28 A3 L23 | L19 L20 L28 A3
sketch "Sketch36" plane through (0, 10, -87.7) normal (0, -1, 0) x (1, 0, 0)
  line L0 (0, 0) -> (-17.4, 0) projected
  line L1 (-17.4, 0) -> (-17.4, -25)
  line L2 (-17.4, -8.3485) -> (-17.4, -20.3693) projected
  line L3 (-17.4, -25) -> (-17.4, 119.772)
  line L4 (-17.4, 119.772) -> (7.6601, 119.772)
  line L5 (7.6601, 119.772) -> (7.6601, -47.6838)
  line L6 (7.6601, -47.6838) -> (-17.4, -47.6838)
  line L7 (-17.4, -47.6838) -> (-17.4, 119.772)
  line L8 (-31.4, 87.7) -> (-17.4, 87.7) projected
  line L9 (-31.4, 87.7) -> (-27.4, 87.7)
  line L10 (-27.4, 87.7) -> (4.1783, 87.7)
  line L11 (4.1783, 87.7) -> (4.1783, -30.9605)
  line L12 (4.1783, -30.9605) -> (-27.4, -30.9605)
  line L13 (-27.4, -30.9605) -> (-27.4, 87.7)
  line L14 (-27.4, -30.9605) -> (13.0906, -30.9605)
  line L15 (13.0906, -30.9605) -> (13.0906, 140.084)
  line L16 (13.0906, 140.084) -> (-27.4, 140.084)
  line L17 (-27.4, 140.084) -> (-27.4, -30.9605)
  point P0 (0, 87.7)
  point P1 (-17.4, -30.9605)
  point P2 (7.6601, -30.9605)
  dimension "d134" = 25
  dimension "d135" = 4
extrude "Extrusion35" cut sketch "Sketch36" against normal through all
sketch "Sketch37" plane through (-27.4, 90, -21.35) normal (0, 1, 0) x (1, 0, 0)
  line L0 (-4, 0) -> (-4, 45) projected
  line L1 (-4, 22.5) -> (-4, 0)
  line L2 (-4, 0) -> (-4, 45)
  line L3 (0, 66.35) -> (0, -21.35) projected
  line L4 (-4, 0) -> (0, 0)
  line L5 (0, 0) -> (0, 45)
  line L6 (0, 45) -> (-4, 45)
  line L7 (-4, 45) -> (-4, 0)
  line L8 (0, 45) -> (27.4, 45)
  line L9 (27.4, 45) -> (27.4, 0)
  line L10 (27.4, 0) -> (0, 0)
  line L11 (0, 0) -> (0, 45)
  line L12 (-4, 0) -> (8.3, 0)
  line L13 (0, 0) -> (0, 9)
  line L14 (8.3, 0) -> (8.3, 9)
  line L15 (8.3, 9) -> (-4, 9)
  line L16 (-4, 9) -> (-4, 0)
  line L17 (-4, 0) -> (8.3, 0)
  line L18 (8.3, 0) -> (8.3, 9)
  circle A0 centre (8.3, 9) radius 8.3
  line L19 (8.3, 9) -> (8.3, 45)
  line L20 (8.3, 45) -> (8.3, 36)
  circle A1 centre (8.3, 36) radius 8.3
  line L21 (8.3, 0) -> (0, 0)
  line L22 (0, 0) -> (0, 45)
  line L23 (0, 45) -> (8.3, 45)
  line L24 (8.3, 45) -> (8.3, 0)
  point P0 (27.4, -21.35)
  point P1 (8.3, 0.7)
  point P2 (8.3, 17.3)
  point P3 (8.3, 27.7)
  point P4 (8.3, 44.3)
  dimension "d138" = 22.5
  dimension "d139" = 12.3
  dimension "d140" = 9
  dimension "d141" = 9
  dimension "d142" = 16.6
  dimension "d143" = 9
  dimension "d144" = 16.6
extrude "Extrusion36" add sketch "Sketch37" against normal blind 4 contours L0 L15 L3 L4 | L0 L6 L3 L15 | L3 A0 L14 L10 | L3 A1 L19 A0 | L3 L8 L19 A1
sketch "Sketch39" plane through (-27.4, 55.2513, 17.5409) normal (0, 0.7071068, 0.7071068) x (1, 0, 0)
  line L0 (0, 45) -> (-4, 45) projected
  line L1 (-4, 45) -> (27.4, 45)
  line L2 (27.4, 45) -> (27.4, 0)
  line L3 (27.4, 0) -> (-4, 0)
  line L4 (-4, 0) -> (-4, 45)
  line L5 (0, 42.4191) -> (0, -19.5942) projected
  line L6 (0, 0) -> (0, 9)
  line L7 (0, 9) -> (16.6, 9)
  circle A0 centre (8.3, 9) radius 8.3
  line L8 (0, 45) -> (0, 36)
  line L9 (0, 36) -> (16.5978, 35.7307)
  circle A1 centre (8.2989, 35.8654) radius 8.3
  line L10 (8.3, 9) -> (8.3, 0)
  line L11 (8.3, 0) -> (8.3, 45)
  point P0 (27.4, -26.6653)
  point P1 (8.3, 44.1654)
  point P2 (0, 42.4191)
  point P3 (8.3, 17.3)
  point P4 (8.3, 27.5654)
  point P5 (0, 35.7307)
  point P6 (8.3, 0.7)
  dimension "d161" = 45
  dimension "d162" = 9
  dimension "d163" = 16.6
  dimension "d164" = 9
  dimension "d165" = 16.6
extrude "Extrusion39" add sketch "Sketch39" against normal blind 4 contours L1 L11 A1 L5 L8 | A1 L11 A0 L5 | L5 A0 L10 L3
sketch "Sketch40" plane through (0, 55.2513, -105.2409) normal (0, 0.7071068, -0.7071068) x (-1, 0, 0)
  line L0 (31.4, 45) -> (31.4, -4) projected
  line L1 (31.4, 45) -> (6.6569, 45)
  line L2 (6.6569, 45) -> (6.6569, 0)
  line L3 (6.6569, 0) -> (31.4, 0)
  line L4 (31.4, 0) -> (31.4, 45)
  line L5 (27.4, 45) -> (27.4, -4) projected
  line L6 (27.4, 45) -> (27.4, 36)
  line L7 (27.4, 36) -> (10.8, 36)
  circle A0 centre (19.1, 36) radius 8.3
  line L8 (27.4, 0) -> (10.8, 0)
  line L9 (10.8, 0) -> (10.8, 9)
  line L10 (19.1, 0) -> (19.1, 9)
  circle A1 centre (19.1, 9) radius 8.3
  line L11 (19.1, 36) -> (19.1, 45)
  line L12 (19.1, 45) -> (19.1, 0)
  point P0 (0, 35.348)
  point P1 (19.1, 27.7)
  point P2 (19.1, 17.3)
  point P3 (27.4, 9)
  point P4 (19.1, 44.3)
  point P5 (19.1, 0.7)
  point P6 (19.1, 0)
  dimension "d168" = 45
  dimension "d169" = 9
  dimension "d170" = 16.6
  dimension "d171" = 16.6
  dimension "d172" = 9
  dimension "d173" = 9
extrude "Extrusion40" add sketch "Sketch40" against normal blind 4 contours L5 A0 L11 L1 | L3 L10 A1 L5 | L5 A1 L12 A0
properties part number "Top front deck"
